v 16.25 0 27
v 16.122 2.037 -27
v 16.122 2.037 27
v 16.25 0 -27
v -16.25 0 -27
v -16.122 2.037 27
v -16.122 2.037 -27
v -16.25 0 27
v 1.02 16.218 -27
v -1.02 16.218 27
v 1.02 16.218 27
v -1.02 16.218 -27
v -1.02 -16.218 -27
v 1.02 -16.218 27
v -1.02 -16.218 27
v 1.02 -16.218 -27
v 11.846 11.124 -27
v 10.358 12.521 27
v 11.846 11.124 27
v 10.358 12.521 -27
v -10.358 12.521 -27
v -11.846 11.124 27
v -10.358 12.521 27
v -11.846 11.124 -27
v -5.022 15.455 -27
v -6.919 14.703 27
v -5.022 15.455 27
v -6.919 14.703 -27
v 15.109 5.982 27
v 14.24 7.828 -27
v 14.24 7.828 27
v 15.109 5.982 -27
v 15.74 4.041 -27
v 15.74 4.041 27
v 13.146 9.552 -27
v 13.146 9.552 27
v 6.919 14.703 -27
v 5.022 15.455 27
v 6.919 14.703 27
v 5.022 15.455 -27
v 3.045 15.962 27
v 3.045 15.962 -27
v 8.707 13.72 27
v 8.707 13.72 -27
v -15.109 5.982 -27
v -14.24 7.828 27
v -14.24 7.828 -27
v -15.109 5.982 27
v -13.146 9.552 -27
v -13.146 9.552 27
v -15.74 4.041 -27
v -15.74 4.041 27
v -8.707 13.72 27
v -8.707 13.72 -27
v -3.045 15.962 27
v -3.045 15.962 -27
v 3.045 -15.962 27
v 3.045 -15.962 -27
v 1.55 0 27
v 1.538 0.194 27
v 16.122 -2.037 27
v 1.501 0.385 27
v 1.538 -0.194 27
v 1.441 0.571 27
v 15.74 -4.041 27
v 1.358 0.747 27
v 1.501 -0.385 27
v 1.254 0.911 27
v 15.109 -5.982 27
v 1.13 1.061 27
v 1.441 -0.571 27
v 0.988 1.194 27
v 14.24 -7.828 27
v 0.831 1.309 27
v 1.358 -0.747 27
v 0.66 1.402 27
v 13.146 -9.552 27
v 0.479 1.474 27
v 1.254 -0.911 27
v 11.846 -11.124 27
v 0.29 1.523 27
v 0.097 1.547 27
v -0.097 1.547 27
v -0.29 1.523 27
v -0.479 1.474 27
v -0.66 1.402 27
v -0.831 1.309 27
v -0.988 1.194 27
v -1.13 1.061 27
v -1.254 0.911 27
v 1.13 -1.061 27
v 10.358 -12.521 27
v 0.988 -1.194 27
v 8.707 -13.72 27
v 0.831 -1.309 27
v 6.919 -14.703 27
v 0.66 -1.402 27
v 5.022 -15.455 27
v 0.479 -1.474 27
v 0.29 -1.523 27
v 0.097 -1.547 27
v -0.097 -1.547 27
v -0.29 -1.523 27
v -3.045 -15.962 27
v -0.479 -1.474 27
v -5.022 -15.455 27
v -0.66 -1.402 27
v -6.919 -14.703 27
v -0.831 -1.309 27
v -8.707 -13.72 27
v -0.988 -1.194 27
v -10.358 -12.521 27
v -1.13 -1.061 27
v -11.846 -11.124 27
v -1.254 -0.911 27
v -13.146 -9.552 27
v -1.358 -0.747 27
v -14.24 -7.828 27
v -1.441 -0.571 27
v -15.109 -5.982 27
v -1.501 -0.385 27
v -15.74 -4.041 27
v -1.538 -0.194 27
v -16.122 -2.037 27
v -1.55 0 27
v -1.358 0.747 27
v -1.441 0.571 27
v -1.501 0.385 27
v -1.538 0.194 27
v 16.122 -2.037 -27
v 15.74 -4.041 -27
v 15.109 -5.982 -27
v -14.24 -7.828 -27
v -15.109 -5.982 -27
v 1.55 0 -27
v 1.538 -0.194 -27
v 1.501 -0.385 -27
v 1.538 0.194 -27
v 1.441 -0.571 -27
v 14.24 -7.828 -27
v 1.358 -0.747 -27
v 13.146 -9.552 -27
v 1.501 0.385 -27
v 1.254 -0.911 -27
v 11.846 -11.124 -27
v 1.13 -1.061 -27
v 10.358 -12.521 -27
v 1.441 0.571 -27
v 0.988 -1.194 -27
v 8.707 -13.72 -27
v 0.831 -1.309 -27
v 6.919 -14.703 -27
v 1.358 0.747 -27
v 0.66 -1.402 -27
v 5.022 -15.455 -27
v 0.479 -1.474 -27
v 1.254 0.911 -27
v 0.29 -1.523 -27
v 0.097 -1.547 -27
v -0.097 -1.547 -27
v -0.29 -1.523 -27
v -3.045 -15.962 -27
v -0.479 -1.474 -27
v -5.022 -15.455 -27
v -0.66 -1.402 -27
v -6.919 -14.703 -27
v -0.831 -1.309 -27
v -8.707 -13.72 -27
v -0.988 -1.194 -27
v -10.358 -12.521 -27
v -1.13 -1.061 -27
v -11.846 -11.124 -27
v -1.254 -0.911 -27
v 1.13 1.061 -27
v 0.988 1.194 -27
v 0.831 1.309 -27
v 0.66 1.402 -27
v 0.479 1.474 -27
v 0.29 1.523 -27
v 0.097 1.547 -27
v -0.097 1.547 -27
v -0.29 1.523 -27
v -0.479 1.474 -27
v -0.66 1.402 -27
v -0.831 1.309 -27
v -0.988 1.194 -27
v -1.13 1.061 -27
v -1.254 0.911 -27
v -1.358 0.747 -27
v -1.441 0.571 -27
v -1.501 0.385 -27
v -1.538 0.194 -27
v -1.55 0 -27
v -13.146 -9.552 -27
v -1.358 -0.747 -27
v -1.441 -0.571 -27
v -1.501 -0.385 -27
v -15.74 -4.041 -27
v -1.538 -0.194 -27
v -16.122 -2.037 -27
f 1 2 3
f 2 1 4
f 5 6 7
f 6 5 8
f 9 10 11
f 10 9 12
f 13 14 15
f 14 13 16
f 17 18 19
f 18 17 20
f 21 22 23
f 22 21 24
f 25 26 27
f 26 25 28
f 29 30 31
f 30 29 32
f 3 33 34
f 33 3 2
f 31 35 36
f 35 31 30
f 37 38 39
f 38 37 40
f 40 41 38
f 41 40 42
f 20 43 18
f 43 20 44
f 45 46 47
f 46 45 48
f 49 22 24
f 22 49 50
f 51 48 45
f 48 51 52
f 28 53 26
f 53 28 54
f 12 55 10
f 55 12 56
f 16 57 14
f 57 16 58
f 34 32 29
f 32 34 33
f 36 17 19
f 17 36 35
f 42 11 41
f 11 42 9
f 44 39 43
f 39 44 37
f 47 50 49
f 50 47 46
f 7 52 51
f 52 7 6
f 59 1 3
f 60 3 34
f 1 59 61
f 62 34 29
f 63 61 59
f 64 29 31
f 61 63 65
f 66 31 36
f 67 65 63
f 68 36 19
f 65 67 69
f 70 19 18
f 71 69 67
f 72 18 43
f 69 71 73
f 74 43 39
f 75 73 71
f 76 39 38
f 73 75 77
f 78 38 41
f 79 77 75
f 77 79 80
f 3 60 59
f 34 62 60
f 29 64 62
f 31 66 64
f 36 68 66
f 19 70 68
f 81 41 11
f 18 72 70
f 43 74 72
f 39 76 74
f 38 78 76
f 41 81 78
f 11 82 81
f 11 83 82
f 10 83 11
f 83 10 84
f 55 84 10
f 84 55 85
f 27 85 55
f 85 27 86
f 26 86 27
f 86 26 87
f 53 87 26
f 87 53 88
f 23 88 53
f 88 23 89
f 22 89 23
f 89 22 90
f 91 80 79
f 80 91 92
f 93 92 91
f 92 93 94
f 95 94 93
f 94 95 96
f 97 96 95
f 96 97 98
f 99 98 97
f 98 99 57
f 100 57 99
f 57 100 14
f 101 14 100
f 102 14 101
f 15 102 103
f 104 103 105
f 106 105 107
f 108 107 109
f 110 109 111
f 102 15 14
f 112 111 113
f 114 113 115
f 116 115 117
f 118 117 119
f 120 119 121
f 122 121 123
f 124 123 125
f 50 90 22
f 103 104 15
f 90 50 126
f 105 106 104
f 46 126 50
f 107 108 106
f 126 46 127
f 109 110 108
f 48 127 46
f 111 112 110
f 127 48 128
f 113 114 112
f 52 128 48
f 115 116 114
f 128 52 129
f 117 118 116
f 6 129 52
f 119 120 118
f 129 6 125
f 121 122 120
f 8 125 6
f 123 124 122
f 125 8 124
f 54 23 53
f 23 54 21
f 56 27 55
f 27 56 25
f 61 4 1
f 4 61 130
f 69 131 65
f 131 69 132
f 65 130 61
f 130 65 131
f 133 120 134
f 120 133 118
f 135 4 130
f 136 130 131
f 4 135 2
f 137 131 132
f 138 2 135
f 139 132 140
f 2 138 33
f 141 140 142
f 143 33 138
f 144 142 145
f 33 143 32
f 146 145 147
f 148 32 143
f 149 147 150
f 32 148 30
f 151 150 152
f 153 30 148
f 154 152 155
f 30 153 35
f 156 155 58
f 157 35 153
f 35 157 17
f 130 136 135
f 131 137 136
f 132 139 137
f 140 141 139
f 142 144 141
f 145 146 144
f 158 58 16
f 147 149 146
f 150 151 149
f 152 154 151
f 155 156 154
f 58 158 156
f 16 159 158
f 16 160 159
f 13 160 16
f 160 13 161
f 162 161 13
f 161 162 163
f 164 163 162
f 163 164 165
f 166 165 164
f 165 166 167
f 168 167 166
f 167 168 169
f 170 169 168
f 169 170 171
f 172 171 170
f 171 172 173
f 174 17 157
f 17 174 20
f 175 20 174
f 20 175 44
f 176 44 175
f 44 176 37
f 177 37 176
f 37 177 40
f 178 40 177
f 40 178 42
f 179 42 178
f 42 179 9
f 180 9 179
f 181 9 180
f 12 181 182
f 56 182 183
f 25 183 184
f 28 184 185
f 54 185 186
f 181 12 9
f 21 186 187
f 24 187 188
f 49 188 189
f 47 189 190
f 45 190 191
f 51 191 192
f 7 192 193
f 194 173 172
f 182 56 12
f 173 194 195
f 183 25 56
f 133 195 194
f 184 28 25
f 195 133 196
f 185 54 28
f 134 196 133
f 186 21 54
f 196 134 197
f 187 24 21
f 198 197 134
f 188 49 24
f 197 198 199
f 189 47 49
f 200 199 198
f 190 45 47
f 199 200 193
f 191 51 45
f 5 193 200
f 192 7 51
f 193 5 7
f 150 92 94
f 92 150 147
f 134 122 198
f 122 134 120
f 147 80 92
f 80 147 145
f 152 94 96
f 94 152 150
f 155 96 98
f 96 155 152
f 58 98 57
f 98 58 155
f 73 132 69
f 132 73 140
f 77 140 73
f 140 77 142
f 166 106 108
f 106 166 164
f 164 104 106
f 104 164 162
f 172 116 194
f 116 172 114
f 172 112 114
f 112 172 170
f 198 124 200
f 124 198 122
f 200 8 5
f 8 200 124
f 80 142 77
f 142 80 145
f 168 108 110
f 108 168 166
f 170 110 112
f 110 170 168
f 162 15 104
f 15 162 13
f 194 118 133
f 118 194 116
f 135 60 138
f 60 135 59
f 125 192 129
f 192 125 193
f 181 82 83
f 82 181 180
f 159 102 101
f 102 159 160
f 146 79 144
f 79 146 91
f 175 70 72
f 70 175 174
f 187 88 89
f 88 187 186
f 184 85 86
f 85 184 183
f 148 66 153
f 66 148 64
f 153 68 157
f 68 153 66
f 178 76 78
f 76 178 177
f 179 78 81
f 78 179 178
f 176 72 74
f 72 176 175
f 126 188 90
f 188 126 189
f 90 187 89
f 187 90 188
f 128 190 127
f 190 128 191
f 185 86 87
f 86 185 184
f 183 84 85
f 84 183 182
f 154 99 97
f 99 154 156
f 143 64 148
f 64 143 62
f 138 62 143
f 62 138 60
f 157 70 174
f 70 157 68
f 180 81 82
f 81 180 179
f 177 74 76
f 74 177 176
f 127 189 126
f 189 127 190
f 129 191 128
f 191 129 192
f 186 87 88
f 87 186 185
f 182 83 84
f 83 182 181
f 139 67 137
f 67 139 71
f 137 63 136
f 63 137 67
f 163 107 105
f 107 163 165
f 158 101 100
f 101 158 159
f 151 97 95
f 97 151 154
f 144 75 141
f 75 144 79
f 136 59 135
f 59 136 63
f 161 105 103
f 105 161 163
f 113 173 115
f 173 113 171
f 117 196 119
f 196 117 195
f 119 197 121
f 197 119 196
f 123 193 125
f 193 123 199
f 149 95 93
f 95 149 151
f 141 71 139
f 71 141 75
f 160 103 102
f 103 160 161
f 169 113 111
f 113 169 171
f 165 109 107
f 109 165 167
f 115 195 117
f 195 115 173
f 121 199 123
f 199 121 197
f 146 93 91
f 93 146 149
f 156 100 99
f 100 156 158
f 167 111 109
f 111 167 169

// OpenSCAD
$fn = 50;


difference() {
	union() {
		translate(v = [0, 0, -27.0000000000]) {
			cylinder(h = 54, r = 16.2500000000);
		}
	}
	union() {
		translate(v = [0, 0, -100.0000000000]) {
			cylinder(h = 200, r = 1.5500000000);
		}
	}
}
